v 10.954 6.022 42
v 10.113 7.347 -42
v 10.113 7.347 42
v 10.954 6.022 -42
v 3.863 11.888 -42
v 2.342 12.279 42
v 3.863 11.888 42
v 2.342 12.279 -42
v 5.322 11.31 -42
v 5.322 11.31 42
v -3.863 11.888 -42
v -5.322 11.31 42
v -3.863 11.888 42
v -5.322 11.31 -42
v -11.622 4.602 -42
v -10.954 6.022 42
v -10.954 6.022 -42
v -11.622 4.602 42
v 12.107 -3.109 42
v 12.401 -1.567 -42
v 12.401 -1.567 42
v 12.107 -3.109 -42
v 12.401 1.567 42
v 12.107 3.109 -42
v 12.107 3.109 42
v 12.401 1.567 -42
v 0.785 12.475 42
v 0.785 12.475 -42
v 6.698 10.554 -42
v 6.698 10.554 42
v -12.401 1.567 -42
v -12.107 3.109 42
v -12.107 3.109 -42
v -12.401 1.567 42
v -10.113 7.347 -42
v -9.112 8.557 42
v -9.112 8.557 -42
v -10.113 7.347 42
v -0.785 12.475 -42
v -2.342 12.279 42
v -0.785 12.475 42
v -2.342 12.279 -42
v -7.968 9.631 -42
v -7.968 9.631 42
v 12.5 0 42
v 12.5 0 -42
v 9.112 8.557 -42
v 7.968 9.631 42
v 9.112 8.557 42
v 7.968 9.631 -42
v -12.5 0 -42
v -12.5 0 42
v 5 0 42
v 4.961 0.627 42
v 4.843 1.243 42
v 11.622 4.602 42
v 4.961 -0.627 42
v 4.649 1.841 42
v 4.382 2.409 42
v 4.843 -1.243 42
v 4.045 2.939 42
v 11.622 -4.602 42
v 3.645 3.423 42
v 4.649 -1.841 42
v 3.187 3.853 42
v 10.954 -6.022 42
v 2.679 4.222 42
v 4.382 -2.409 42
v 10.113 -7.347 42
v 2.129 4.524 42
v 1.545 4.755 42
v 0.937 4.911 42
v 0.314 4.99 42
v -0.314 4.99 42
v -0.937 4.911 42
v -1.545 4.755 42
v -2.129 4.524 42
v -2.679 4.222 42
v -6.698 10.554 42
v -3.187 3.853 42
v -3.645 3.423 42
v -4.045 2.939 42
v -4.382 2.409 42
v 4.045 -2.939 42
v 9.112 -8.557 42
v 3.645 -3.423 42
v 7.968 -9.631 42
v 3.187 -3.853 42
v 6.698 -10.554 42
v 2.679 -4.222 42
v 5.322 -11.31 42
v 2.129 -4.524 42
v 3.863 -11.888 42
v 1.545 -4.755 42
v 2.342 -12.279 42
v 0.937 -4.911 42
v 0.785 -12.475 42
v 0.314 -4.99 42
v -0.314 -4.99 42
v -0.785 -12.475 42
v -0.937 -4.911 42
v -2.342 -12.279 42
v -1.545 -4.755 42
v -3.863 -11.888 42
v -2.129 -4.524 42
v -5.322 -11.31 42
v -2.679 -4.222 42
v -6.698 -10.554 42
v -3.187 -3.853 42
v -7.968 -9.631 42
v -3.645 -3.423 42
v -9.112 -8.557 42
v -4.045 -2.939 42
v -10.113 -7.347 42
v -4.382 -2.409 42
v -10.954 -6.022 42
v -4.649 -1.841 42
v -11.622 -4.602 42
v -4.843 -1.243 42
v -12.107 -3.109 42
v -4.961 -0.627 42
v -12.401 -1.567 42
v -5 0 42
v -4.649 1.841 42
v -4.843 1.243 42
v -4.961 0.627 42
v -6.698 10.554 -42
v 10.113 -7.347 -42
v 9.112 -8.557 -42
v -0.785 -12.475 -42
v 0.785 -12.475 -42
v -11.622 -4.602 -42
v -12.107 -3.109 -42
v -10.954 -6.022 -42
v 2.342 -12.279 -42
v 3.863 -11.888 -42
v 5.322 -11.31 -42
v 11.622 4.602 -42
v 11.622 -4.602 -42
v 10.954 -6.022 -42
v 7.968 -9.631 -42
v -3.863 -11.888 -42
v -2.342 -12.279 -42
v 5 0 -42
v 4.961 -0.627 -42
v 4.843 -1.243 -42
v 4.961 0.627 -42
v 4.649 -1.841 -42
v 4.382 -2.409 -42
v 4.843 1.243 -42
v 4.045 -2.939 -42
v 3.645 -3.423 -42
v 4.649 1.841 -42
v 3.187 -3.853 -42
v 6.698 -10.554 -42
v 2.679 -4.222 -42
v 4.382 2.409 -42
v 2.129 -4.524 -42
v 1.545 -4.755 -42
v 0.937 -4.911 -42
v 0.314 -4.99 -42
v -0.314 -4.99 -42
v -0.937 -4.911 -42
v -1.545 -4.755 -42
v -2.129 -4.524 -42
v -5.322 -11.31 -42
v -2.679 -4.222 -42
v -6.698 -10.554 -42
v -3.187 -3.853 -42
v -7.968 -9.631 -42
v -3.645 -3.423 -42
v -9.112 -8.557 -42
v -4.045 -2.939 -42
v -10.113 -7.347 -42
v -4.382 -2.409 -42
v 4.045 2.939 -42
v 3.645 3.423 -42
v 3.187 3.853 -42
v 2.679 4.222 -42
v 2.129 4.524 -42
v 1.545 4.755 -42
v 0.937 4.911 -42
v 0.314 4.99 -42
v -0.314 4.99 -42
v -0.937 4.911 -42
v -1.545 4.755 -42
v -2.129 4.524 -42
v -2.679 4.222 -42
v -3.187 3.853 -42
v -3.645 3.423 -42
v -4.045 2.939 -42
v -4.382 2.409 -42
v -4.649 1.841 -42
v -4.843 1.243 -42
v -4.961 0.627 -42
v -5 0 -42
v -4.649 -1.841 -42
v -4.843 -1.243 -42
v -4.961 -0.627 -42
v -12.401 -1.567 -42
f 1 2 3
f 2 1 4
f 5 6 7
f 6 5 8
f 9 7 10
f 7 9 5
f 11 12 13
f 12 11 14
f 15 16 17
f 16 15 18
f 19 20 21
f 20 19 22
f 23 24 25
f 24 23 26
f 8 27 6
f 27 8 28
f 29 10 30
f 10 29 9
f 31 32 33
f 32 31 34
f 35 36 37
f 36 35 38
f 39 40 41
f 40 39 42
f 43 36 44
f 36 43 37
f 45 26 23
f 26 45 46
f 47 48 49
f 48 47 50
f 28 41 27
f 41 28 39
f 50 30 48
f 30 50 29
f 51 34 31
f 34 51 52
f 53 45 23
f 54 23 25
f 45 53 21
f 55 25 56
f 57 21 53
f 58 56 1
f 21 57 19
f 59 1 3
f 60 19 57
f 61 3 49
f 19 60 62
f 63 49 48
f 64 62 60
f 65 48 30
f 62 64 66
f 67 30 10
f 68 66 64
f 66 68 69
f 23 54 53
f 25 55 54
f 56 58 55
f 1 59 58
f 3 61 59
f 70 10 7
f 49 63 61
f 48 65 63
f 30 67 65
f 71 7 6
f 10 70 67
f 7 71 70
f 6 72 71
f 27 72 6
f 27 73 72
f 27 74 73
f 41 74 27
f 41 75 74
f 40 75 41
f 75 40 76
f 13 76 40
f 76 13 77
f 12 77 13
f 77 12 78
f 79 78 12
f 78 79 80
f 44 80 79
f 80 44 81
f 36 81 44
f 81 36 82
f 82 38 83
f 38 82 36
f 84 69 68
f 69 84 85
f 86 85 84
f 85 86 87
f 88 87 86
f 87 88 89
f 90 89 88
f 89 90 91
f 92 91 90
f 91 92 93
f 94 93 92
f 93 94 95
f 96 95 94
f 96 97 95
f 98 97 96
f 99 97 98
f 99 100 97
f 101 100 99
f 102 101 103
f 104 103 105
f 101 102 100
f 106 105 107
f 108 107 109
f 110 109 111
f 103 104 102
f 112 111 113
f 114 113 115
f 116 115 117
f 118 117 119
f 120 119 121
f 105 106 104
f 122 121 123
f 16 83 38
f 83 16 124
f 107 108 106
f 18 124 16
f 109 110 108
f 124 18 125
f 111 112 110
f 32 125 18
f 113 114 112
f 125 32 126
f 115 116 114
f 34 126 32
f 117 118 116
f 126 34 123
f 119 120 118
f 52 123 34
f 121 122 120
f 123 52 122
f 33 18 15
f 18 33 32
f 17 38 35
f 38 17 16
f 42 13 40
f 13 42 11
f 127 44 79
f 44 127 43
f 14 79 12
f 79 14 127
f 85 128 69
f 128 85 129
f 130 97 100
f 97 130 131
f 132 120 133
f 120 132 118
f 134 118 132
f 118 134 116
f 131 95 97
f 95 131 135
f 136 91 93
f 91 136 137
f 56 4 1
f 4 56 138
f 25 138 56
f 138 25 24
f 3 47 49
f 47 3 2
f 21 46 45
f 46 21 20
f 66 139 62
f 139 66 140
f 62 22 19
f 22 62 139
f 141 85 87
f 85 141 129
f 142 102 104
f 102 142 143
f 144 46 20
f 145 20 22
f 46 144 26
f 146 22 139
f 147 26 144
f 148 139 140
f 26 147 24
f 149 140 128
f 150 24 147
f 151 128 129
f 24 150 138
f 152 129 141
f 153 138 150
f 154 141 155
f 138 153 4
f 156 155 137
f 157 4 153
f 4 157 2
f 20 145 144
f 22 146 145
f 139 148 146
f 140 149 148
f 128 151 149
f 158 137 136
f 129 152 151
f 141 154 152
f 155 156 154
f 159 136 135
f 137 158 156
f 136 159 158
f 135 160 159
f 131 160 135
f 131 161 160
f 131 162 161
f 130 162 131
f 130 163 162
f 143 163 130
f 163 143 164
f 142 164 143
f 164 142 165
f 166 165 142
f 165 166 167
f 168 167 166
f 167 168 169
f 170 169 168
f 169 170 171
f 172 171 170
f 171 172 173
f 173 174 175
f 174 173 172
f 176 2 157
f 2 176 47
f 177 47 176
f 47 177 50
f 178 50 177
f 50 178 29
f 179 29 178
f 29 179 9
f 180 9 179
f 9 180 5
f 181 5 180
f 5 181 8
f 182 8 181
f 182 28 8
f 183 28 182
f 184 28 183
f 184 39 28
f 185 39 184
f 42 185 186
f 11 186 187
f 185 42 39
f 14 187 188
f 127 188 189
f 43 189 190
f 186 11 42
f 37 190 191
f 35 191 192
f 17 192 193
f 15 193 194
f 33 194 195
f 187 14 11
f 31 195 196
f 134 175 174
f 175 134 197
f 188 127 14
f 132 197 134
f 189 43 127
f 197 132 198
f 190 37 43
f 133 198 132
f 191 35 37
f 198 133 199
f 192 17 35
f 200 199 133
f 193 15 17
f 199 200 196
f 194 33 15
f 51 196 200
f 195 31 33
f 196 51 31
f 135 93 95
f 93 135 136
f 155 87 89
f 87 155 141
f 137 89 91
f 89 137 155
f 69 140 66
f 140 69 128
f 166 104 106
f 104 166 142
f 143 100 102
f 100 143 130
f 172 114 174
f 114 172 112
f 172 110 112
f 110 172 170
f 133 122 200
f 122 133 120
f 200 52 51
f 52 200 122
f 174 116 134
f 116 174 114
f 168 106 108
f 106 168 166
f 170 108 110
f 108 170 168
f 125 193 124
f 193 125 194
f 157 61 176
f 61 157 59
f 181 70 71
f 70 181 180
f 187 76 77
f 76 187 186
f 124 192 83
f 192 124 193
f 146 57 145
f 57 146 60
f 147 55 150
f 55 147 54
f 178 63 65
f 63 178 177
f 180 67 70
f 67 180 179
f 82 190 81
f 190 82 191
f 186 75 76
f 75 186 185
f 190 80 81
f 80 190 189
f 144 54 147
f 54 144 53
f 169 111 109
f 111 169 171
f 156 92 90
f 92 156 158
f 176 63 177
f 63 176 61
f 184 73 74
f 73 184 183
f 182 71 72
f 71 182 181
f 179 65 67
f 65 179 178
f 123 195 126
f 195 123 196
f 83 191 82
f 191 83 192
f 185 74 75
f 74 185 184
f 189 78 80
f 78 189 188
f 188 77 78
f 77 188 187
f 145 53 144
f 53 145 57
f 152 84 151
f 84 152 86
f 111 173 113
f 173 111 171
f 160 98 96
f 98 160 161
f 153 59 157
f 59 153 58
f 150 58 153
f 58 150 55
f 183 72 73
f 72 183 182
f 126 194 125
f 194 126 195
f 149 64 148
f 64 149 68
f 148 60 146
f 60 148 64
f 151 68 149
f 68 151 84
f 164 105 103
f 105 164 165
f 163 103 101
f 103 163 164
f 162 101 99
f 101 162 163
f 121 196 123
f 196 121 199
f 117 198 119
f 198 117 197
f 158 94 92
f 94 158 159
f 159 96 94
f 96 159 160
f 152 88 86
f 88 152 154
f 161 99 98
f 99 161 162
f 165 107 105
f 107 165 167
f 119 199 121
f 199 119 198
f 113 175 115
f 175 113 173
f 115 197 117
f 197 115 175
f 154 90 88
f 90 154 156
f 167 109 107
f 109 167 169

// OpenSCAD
$fn = 50;


difference() {
	union() {
		translate(v = [0, 0, -42.0000000000]) {
			cylinder(h = 84, r = 12.5000000000);
		}
	}
	union() {
		translate(v = [0, 0, -100.0000000000]) {
			cylinder(h = 200, r = 5);
		}
	}
}
